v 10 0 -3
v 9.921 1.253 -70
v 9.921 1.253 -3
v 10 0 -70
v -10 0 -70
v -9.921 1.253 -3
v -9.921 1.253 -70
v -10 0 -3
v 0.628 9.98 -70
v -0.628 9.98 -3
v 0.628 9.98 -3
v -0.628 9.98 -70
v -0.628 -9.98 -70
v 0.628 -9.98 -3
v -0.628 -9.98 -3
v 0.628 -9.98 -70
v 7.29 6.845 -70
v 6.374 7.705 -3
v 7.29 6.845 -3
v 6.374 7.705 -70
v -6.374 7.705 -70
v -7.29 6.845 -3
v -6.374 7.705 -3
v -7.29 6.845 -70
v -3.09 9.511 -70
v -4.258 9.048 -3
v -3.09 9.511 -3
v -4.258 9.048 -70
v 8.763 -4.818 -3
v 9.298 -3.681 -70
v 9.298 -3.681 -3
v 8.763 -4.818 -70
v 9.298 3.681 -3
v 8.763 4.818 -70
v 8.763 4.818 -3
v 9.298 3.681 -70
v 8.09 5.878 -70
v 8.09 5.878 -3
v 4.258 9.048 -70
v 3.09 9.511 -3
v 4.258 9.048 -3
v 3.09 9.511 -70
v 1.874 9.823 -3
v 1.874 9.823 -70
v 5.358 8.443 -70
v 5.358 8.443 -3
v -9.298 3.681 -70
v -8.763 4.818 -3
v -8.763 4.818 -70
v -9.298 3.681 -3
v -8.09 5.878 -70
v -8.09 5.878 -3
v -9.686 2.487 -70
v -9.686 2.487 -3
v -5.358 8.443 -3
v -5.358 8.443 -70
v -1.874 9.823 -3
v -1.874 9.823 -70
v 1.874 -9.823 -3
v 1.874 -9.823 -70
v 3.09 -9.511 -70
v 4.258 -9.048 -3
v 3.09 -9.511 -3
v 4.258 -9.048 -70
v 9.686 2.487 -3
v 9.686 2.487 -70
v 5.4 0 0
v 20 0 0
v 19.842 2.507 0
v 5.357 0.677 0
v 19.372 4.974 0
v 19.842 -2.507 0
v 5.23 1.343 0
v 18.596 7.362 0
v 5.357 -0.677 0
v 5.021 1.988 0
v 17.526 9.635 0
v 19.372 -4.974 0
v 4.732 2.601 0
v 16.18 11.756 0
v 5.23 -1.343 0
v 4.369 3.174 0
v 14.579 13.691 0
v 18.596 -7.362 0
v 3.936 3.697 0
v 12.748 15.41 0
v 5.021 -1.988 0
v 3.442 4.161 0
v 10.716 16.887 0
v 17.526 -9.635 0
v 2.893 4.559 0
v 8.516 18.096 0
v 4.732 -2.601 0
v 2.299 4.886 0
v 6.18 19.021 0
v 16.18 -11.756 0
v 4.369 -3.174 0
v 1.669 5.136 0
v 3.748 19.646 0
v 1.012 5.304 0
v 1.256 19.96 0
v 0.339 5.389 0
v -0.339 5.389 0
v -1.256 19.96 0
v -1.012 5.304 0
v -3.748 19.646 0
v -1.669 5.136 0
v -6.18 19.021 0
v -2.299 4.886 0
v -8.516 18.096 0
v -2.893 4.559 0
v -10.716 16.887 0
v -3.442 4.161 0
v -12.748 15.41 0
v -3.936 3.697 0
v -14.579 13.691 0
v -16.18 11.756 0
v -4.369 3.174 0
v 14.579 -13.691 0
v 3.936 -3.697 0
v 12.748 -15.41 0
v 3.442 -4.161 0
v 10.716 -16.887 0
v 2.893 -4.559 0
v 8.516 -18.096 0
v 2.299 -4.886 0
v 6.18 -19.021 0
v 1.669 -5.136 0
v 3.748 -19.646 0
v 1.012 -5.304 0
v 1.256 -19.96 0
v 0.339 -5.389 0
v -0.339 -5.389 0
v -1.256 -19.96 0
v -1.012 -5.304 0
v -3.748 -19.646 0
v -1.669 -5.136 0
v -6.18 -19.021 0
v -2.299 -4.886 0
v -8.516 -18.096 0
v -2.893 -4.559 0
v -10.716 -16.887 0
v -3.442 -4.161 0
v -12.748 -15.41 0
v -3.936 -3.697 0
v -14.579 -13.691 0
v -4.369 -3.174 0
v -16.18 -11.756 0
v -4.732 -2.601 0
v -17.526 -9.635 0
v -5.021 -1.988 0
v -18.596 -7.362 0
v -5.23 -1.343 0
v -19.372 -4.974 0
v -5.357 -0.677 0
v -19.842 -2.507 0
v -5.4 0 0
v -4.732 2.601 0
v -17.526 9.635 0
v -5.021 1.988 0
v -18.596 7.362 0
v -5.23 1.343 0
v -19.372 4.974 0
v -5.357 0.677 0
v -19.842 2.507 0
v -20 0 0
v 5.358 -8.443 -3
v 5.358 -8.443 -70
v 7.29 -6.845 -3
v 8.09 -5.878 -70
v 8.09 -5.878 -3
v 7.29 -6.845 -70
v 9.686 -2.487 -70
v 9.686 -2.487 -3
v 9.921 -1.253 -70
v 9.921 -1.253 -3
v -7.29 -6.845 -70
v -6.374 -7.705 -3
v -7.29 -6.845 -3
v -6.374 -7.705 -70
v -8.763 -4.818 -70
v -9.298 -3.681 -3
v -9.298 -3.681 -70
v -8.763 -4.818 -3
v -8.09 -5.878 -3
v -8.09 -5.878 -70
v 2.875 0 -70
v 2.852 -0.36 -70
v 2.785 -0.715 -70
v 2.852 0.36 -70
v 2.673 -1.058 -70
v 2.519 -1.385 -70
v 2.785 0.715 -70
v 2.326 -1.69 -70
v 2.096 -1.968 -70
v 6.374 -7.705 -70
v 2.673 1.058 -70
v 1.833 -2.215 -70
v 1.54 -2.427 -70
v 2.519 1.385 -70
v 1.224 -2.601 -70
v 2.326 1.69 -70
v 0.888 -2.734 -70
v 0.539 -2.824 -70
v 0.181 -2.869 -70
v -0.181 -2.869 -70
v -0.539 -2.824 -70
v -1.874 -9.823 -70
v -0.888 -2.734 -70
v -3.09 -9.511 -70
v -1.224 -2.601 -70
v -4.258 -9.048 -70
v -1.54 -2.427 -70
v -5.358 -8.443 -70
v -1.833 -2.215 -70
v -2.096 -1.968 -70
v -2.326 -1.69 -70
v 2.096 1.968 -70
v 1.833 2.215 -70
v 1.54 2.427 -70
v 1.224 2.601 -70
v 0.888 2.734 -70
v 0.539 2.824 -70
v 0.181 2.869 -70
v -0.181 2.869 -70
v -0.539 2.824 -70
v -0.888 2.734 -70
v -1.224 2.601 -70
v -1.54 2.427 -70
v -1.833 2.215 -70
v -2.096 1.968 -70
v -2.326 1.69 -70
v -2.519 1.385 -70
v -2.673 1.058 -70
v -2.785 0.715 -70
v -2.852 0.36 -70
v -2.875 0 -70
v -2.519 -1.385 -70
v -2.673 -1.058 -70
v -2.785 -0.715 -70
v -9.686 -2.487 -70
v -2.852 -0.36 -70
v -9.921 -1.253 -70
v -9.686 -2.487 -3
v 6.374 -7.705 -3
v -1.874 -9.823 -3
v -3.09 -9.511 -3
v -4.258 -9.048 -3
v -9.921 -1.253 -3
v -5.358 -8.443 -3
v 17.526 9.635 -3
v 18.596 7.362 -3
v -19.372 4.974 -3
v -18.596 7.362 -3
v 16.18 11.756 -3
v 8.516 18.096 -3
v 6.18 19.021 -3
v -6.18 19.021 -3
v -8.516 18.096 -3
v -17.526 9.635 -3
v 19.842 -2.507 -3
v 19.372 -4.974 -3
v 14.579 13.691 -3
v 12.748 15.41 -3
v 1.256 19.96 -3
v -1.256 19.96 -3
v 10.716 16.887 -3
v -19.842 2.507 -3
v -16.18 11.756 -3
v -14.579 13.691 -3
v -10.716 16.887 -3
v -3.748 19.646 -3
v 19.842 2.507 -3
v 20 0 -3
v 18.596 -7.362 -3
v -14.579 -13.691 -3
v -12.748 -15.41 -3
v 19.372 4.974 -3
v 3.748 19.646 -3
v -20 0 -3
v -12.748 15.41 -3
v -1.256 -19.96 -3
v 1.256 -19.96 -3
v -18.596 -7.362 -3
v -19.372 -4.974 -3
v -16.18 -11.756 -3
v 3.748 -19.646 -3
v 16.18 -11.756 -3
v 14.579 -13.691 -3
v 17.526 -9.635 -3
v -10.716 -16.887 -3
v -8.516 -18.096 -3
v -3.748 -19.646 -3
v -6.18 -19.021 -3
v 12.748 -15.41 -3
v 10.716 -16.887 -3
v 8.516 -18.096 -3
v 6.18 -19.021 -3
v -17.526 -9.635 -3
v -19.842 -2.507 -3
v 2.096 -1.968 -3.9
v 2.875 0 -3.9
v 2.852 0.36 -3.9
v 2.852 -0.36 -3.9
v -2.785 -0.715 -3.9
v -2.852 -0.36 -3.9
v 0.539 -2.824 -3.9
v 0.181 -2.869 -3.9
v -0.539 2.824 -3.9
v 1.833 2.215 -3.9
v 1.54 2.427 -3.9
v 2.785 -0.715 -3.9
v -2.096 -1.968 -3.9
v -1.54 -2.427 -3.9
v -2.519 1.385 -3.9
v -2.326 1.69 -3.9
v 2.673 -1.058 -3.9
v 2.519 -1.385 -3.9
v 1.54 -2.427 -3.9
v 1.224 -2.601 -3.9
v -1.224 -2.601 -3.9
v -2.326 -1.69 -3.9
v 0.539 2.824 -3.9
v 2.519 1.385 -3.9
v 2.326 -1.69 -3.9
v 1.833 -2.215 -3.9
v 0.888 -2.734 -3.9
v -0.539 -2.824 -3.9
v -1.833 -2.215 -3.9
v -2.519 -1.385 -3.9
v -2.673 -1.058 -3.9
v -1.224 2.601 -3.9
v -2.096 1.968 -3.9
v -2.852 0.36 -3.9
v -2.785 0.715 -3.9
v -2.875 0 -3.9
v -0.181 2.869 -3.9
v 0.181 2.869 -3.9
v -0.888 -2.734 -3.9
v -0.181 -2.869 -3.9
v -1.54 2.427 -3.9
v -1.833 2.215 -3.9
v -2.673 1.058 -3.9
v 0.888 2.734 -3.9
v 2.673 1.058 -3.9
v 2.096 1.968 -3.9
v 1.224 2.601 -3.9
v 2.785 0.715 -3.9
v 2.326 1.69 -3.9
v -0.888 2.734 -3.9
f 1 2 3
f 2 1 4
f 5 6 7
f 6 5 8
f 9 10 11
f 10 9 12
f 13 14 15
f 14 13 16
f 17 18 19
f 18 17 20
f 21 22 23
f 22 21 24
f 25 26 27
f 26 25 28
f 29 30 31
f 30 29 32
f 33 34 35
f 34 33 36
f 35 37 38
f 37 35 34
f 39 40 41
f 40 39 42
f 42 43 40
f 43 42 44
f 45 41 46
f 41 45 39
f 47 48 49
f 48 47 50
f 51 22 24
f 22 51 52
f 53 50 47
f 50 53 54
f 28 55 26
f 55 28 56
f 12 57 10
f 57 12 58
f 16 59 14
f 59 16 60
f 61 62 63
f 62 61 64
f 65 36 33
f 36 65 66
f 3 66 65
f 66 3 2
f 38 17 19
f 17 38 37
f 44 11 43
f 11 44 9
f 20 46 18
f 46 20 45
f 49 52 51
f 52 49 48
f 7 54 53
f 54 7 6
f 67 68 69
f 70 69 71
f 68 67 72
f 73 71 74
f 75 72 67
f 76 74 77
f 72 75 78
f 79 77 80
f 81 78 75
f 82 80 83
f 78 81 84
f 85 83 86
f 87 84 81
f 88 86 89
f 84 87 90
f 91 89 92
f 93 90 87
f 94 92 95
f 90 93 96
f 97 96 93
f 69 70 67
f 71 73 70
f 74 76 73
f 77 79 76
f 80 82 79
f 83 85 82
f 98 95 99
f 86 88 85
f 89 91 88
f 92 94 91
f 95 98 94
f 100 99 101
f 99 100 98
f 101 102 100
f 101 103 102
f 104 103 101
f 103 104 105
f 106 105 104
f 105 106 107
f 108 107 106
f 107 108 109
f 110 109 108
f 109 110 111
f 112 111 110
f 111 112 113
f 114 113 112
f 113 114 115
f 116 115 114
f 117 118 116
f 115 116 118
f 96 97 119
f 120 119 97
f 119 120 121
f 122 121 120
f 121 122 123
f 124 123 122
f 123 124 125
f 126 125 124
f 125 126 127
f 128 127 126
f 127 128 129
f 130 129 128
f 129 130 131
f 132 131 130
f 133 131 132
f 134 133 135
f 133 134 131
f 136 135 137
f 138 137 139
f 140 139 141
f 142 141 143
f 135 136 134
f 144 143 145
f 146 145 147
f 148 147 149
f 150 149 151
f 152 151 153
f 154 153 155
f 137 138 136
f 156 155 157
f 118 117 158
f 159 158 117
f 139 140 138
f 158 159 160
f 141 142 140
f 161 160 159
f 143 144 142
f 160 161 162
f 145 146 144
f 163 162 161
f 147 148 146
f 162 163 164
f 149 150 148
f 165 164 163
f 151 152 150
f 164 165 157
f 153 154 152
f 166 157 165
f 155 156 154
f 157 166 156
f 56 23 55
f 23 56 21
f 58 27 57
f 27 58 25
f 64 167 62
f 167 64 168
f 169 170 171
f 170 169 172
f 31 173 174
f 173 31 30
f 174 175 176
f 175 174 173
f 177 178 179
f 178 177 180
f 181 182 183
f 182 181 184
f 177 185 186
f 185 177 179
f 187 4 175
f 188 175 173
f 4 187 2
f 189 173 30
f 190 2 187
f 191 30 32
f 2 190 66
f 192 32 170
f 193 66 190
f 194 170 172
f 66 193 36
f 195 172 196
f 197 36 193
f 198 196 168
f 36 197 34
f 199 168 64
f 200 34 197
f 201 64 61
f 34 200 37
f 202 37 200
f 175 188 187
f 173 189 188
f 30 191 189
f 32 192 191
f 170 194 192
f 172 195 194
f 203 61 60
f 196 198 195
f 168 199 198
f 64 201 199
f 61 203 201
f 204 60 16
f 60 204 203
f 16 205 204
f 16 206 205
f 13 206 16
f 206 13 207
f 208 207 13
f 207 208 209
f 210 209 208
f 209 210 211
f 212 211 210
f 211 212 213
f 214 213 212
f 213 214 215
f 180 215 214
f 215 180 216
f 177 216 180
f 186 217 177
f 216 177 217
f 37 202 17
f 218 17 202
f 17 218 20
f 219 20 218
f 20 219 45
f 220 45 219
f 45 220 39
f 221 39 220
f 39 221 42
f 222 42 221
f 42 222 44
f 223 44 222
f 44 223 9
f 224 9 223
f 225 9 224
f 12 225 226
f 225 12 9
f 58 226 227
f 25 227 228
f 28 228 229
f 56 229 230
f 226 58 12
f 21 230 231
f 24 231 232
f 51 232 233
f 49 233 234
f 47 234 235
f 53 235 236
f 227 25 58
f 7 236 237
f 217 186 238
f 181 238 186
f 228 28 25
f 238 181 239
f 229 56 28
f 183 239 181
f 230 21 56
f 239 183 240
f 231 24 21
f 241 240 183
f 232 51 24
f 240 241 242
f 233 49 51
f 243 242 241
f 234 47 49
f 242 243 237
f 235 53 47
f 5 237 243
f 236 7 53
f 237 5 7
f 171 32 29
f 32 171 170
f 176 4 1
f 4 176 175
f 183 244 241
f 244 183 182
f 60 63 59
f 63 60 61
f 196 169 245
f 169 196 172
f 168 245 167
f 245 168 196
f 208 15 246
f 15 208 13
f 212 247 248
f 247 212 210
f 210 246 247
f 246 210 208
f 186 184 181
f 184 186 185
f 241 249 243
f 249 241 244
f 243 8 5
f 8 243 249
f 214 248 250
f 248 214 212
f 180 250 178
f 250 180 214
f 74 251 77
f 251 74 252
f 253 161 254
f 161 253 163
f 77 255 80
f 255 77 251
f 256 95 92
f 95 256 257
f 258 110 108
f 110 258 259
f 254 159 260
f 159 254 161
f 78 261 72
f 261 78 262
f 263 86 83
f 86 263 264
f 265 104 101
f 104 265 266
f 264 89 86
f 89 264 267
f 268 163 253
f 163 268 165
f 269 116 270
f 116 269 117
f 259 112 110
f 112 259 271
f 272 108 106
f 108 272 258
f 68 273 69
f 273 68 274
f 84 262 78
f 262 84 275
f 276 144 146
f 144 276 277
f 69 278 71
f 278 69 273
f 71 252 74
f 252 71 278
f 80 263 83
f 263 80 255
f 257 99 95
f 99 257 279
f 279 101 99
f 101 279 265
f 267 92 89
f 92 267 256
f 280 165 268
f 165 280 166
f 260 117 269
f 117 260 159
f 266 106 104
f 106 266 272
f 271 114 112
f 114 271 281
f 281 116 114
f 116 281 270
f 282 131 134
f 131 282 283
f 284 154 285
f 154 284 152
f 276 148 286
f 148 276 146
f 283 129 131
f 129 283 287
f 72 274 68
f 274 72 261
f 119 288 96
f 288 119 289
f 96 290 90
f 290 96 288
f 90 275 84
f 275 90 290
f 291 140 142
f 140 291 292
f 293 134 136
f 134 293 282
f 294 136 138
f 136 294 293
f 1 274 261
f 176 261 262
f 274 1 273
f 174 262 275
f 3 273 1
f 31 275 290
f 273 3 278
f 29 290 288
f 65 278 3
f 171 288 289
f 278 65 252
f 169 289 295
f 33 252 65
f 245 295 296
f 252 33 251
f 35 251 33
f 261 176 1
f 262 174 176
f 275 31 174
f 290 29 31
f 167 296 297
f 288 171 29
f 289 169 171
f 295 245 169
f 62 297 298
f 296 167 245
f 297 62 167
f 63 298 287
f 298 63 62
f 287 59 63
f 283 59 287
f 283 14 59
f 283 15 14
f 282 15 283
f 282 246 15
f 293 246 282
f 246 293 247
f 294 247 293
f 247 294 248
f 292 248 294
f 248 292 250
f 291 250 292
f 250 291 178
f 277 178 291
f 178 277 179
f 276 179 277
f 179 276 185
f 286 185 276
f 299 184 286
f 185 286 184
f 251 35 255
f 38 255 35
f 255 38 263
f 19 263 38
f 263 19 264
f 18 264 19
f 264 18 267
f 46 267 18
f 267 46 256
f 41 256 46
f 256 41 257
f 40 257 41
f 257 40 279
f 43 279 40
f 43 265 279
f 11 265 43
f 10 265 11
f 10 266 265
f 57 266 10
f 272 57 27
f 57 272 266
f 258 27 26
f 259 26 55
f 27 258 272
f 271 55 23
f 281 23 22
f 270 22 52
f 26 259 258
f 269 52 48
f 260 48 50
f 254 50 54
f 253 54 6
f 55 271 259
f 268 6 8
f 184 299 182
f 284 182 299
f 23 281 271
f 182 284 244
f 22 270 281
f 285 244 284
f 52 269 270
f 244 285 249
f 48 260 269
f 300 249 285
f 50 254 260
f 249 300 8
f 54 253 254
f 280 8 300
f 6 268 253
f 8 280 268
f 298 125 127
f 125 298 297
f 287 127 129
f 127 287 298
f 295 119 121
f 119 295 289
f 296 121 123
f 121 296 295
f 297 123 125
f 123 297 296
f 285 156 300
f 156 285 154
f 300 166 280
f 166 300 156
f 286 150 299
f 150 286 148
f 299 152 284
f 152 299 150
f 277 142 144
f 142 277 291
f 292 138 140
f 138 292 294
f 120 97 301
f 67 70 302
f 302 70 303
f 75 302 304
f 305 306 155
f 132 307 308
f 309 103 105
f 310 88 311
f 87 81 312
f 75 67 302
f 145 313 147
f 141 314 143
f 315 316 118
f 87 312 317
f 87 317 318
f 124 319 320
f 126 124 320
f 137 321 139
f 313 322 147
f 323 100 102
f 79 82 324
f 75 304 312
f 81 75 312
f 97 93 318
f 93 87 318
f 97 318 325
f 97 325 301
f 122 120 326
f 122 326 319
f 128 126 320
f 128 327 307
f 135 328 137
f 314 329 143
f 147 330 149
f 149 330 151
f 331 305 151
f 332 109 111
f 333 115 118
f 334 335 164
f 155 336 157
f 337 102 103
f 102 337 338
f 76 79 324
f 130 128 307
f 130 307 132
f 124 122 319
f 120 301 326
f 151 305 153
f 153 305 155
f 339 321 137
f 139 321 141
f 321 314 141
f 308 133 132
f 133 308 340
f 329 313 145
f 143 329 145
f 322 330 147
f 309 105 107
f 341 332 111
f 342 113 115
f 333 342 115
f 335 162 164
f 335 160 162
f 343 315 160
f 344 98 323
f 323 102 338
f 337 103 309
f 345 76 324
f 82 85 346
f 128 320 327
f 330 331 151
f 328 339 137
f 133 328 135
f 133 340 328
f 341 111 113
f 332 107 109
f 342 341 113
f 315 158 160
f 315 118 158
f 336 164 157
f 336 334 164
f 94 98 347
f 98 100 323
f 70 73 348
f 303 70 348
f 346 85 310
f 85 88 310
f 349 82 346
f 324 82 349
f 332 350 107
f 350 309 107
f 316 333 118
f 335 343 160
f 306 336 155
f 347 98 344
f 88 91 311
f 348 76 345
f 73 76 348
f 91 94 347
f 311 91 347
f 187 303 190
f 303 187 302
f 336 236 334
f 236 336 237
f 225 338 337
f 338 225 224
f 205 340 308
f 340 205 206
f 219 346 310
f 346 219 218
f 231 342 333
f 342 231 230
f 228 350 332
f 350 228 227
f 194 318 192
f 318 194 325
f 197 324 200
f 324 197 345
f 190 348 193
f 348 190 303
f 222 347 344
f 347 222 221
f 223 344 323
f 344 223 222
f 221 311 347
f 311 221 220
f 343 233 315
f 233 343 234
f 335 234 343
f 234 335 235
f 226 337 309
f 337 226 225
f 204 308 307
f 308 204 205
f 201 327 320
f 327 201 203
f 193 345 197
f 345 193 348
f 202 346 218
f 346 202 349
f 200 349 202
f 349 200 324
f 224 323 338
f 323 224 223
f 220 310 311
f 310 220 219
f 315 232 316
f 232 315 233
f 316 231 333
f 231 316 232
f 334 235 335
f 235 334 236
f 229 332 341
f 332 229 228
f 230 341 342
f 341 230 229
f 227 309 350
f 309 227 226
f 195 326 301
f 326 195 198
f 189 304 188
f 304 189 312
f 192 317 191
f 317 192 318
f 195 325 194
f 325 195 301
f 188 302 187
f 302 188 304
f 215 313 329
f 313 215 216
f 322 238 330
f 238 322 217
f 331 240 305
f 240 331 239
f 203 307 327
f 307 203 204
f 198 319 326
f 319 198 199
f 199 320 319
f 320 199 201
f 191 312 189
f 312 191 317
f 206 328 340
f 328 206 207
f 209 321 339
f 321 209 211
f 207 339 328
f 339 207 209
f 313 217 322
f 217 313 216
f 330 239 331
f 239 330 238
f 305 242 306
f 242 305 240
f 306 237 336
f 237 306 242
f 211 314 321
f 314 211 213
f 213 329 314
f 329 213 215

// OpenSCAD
$fn = 50;


difference() {
	union() {
		translate(v = [0, 0, -70.0000000000]) {
			cylinder(h = 70, r = 10.0000000000);
		}
		translate(v = [0, 0, -3.0000000000]) {
			cylinder(h = 3, r = 20.0000000000);
		}
	}
	union() {
		translate(v = [0, 0, 0]) {
			rotate(a = [0, 0, 0]) {
				difference() {
					union() {
						#translate(v = [0, 0, -70.0000000000]) {
							cylinder(h = 70, r = 2.6000000000);
						}
						#translate(v = [0, 0, -3.9000000000]) {
							cylinder(h = 3.9000000000, r = 10.0000000000, r1 = 2.8750000000, r2 = 5.4000000000);
						}
						#translate(v = [0, 0, -70.0000000000]) {
							cylinder(h = 70, r = 2.8750000000);
						}
						#translate(v = [0, 0, -70.0000000000]) {
							cylinder(h = 70, r = 2.6000000000);
						}
					}
					union();
				}
			}
		}
	}
}
